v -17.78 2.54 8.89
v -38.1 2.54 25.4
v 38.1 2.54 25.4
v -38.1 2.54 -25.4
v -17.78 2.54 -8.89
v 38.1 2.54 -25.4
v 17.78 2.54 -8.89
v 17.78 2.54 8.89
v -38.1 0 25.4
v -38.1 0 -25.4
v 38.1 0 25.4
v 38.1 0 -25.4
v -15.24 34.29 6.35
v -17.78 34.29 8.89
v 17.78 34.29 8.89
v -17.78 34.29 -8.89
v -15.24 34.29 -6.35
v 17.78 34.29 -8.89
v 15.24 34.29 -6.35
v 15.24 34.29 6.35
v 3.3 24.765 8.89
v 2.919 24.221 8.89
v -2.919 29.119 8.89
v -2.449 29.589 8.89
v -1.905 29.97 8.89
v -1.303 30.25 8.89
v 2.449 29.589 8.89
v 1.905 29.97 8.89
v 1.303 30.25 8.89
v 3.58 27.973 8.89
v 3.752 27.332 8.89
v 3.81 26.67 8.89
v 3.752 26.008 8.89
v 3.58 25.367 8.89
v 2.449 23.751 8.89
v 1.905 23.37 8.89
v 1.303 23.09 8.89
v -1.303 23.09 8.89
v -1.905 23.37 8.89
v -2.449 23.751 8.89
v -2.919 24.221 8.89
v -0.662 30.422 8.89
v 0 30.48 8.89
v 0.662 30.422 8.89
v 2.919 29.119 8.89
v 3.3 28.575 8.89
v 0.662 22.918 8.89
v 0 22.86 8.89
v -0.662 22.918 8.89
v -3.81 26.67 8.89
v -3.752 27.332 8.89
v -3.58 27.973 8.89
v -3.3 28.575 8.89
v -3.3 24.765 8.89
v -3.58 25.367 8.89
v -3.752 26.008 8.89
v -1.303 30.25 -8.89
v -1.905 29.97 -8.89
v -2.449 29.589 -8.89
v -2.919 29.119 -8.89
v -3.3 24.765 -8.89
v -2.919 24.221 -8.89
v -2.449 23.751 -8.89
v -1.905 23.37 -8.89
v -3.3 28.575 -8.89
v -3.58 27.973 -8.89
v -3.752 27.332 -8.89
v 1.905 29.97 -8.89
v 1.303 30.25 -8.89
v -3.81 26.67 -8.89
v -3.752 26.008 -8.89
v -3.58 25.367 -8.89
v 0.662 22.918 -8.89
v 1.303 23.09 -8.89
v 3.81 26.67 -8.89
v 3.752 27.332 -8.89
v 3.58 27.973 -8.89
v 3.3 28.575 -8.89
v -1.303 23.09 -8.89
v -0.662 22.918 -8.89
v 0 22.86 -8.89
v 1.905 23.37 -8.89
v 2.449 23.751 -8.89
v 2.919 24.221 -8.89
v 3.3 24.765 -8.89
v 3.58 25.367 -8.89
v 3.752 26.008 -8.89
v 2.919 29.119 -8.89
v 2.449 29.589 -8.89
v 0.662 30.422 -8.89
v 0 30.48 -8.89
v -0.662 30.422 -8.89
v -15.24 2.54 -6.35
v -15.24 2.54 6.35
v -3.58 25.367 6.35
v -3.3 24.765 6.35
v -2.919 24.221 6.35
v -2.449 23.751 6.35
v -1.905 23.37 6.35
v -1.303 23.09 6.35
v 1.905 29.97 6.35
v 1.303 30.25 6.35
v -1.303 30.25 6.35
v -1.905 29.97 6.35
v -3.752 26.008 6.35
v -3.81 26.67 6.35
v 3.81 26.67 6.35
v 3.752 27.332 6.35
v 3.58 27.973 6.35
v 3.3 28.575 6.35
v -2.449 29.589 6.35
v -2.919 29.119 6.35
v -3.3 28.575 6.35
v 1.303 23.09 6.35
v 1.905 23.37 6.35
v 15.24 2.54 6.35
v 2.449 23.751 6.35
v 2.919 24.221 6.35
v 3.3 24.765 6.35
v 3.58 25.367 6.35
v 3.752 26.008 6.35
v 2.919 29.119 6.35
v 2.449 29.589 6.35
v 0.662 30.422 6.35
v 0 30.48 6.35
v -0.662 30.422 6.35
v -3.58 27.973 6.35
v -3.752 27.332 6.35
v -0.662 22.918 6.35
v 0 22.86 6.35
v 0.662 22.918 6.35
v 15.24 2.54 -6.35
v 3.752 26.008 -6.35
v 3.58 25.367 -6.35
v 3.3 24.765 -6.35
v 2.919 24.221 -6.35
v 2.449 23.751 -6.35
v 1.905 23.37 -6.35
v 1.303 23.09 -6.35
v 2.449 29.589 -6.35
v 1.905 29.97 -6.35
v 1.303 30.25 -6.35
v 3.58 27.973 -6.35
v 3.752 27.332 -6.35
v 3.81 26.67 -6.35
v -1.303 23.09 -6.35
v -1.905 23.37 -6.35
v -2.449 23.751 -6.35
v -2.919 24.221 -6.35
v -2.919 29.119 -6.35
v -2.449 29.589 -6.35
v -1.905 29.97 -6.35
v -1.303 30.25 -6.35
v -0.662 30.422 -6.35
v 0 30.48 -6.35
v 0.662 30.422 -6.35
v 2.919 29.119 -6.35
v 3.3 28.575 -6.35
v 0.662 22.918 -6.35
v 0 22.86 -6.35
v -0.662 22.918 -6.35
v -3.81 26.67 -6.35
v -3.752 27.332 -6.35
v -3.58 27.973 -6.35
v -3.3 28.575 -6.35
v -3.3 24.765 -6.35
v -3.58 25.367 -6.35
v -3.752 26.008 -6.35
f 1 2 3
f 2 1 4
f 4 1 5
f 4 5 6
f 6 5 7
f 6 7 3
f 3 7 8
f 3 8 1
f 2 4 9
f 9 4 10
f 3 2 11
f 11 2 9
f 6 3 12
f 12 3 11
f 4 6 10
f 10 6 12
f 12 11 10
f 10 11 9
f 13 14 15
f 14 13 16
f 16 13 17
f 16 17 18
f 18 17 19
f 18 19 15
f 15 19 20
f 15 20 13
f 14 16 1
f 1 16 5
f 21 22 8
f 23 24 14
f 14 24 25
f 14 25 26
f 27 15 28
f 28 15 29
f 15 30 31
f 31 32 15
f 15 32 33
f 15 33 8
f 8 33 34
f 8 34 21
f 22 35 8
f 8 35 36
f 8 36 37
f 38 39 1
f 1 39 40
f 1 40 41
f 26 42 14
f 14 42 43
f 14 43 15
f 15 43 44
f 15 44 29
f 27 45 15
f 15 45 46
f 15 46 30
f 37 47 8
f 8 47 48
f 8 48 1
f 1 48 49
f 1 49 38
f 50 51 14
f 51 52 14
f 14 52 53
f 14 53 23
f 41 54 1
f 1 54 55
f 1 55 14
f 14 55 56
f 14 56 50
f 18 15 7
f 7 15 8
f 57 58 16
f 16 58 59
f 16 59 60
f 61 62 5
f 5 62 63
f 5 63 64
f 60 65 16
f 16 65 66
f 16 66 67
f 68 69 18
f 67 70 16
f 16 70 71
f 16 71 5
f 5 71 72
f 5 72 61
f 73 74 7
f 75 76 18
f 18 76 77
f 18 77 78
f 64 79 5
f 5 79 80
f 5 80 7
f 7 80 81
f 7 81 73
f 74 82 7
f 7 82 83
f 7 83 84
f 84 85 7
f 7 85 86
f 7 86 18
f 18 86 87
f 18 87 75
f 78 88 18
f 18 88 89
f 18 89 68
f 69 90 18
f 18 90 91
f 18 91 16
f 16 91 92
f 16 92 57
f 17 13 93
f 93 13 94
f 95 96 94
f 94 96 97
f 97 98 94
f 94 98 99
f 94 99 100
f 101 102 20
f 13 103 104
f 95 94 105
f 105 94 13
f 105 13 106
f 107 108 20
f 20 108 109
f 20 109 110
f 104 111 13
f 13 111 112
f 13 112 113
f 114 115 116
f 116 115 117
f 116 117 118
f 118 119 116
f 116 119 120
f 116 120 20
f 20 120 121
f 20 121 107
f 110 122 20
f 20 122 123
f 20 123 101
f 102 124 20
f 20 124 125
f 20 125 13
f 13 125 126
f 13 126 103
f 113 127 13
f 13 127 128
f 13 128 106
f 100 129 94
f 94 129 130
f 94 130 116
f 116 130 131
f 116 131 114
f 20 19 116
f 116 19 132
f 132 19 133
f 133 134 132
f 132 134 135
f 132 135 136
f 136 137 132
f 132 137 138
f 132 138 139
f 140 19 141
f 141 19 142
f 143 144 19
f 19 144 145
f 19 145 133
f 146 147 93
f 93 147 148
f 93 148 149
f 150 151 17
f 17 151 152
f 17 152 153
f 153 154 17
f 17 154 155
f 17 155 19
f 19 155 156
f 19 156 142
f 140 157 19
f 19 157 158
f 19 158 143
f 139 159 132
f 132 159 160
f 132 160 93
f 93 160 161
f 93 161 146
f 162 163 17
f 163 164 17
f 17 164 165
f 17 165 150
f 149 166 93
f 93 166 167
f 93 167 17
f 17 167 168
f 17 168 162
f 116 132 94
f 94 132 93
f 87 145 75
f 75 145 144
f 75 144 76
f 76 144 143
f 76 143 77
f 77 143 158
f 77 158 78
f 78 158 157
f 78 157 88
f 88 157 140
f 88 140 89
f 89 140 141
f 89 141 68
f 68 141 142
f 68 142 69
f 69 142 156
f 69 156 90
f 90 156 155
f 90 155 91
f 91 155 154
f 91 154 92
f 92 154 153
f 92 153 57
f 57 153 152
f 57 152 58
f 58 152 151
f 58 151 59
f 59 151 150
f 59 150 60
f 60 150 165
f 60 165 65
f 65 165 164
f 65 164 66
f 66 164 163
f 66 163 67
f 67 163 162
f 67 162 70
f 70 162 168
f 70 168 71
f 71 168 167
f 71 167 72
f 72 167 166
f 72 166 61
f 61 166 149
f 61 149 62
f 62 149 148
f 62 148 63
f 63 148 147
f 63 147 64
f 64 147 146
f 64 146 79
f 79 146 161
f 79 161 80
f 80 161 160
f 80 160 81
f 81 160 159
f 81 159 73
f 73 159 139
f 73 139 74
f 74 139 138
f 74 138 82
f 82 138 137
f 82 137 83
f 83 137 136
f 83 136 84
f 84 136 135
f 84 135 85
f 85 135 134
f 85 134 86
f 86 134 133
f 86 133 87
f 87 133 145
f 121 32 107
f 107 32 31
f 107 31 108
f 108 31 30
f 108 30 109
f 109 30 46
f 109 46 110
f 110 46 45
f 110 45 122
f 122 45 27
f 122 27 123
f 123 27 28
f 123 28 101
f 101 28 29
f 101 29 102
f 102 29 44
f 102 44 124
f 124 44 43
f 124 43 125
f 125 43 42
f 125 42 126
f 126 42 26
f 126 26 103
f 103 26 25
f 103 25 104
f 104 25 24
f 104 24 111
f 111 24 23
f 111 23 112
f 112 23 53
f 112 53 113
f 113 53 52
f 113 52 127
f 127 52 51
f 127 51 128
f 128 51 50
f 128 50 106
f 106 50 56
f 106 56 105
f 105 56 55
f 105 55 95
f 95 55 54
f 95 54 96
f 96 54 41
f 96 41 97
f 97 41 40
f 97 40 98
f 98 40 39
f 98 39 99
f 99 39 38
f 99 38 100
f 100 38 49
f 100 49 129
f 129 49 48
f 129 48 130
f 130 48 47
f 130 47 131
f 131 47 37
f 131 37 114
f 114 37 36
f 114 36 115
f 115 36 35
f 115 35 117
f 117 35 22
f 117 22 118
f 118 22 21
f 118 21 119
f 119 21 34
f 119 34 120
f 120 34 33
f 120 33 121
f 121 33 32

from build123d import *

# Parameters (mm, degrees)
SKETCH1_W           = 76.2
SKETCH1_H           = 50.8
BOSS_EXTRUDE1_DEPTH = 2.54
SKETCH2_W           = 35.56
SKETCH2_H           = 17.78
SKETCH2_W_2         = 30.48
SKETCH2_H_2         = 12.7
BOSS_EXTRUDE2_DEPTH = 31.75
SKETCH3_R           = 3.81
CUT_EXTRUDE1_DEPTH  = 31.75


with BuildPart() as part:
    # Sketch1 → Boss-Extrude1 (new body)
    with BuildSketch(Plane(origin=(0, 0, 0), x_dir=(1, 0, 0), z_dir=(0, 1, 0))):
        Rectangle(SKETCH1_W, SKETCH1_H)
    extrude(amount=BOSS_EXTRUDE1_DEPTH)

    # Sketch2 → Boss-Extrude2 (add)
    with BuildSketch(Plane(origin=(0, 2.54, 0), x_dir=(1, 0, 0), z_dir=(0, 1, 0))):
        Rectangle(SKETCH2_W, SKETCH2_H)
        Rectangle(SKETCH2_W_2, SKETCH2_H_2, mode=Mode.SUBTRACT)
    extrude(amount=BOSS_EXTRUDE2_DEPTH)

    # Sketch3 → Cut-Extrude1 (cut)
    with BuildSketch(Plane.XY.offset(8.89)):
        with Locations((0, 26.67)):
            Circle(SKETCH3_R)
    extrude(amount=-CUT_EXTRUDE1_DEPTH, mode=Mode.SUBTRACT)


solid = part.part
